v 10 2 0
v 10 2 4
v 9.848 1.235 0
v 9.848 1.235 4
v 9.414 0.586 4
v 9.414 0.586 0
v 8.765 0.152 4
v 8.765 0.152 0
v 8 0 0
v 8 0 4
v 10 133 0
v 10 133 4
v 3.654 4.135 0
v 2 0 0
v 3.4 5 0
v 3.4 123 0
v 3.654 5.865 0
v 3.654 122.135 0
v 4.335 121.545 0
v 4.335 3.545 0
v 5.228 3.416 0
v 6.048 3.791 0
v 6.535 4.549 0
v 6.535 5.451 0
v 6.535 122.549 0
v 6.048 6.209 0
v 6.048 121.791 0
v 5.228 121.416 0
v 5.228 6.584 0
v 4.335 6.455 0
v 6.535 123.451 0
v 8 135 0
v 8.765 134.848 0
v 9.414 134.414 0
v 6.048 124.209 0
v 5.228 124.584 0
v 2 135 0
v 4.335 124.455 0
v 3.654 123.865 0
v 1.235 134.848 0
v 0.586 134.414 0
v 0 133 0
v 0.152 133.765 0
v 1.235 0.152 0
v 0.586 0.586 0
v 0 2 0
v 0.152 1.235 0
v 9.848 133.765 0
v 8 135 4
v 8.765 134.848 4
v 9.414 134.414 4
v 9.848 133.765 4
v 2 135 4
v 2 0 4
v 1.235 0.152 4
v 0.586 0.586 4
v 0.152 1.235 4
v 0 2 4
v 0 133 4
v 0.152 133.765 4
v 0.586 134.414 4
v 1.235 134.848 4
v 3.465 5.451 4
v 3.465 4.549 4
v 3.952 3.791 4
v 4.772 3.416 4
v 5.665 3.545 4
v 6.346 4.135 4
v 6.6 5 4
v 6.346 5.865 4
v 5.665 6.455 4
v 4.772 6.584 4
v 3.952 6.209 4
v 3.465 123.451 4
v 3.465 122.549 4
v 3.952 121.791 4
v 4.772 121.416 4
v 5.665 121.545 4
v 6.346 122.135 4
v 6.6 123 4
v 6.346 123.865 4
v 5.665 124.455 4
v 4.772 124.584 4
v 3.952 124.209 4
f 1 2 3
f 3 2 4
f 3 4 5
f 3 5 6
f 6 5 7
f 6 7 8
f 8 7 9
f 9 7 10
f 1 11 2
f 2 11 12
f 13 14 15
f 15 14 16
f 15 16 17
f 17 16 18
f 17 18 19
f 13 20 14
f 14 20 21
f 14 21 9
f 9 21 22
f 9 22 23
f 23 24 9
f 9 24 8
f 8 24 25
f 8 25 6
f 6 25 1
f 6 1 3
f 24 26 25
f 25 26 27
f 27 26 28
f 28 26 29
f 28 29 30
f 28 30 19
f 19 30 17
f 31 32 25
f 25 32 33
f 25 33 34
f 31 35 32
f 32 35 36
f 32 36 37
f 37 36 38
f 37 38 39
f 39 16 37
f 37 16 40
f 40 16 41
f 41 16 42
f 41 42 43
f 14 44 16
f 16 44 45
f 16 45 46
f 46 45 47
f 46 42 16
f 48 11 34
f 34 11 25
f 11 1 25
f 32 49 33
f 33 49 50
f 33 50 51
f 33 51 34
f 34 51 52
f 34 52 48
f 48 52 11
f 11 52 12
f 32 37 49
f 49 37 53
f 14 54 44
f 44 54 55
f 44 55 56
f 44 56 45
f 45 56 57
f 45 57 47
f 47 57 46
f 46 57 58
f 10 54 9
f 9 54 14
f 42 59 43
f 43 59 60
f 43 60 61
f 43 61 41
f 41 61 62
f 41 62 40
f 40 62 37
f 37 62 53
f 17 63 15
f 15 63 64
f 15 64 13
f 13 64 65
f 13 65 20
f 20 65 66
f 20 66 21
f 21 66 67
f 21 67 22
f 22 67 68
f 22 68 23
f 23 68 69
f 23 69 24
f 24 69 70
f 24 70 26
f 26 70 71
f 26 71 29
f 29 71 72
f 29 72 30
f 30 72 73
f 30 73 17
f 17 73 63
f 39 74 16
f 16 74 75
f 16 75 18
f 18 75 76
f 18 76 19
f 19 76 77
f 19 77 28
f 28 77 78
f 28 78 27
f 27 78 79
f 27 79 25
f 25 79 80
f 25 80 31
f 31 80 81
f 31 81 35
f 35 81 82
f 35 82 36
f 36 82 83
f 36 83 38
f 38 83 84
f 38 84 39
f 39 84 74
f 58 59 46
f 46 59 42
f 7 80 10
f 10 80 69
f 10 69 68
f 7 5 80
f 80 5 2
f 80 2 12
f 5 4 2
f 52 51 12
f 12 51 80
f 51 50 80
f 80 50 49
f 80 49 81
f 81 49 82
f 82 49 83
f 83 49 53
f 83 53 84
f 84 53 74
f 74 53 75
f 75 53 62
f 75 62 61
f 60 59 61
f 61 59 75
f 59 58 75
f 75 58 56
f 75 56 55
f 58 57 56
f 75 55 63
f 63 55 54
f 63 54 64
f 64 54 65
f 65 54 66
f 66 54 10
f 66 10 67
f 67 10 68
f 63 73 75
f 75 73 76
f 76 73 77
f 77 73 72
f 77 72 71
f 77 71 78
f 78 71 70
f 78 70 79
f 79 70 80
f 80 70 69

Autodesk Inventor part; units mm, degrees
ref_plane "YZ Plane" through (0, 0, 0) normal (1, 0, 0) x (0, 1, 0)
ref_plane "XZ Plane" through (0, 0, 0) normal (0, 1, 0) x (-1, 0, 0)
ref_plane "XY Plane" through (0, 0, 0) normal (0, 0, 1) x (1, 0, 0)
sketch "スケッチ1" plane through (0, 0, 0) normal (0, 0, 1) x (1, 0, 0)
  line L0 (0, 0) -> (10, 0)
  line L1 (10, 0) -> (10, 135)
  line L2 (10, 135) -> (0, 135)
  line L3 (0, 135) -> (0, 0)
  dimension "d0" = 10
  dimension "d1" = 135
extrude "押し出し1" add sketch "スケッチ1" along normal blind 4
sketch "スケッチ2" plane through (0, 0, 4) normal (0, 0, 1) x (1, 0, 0)
  line L0 (10, 135) -> (0, 135) projected
  line L1 (10, 0) -> (10, 135) projected
  point P0 (0, 0)
  point P1 (5, 123)
  point P2 (5, 5)
  dimension "d4" = 12
  dimension "d5" = 5
  dimension "d14" = 118
hole "穴1" at (5, 123, 4) at (5, 5, 4) direction (0, 0, -1) diameter 3.2 end through all
fillet "フィレット1" radius 2 4 edges at (0, 135, 2) (0, 0, 2) (10, 135, 2) (10, 0, 2)
properties part number "BP_BOX-Bar-add"
